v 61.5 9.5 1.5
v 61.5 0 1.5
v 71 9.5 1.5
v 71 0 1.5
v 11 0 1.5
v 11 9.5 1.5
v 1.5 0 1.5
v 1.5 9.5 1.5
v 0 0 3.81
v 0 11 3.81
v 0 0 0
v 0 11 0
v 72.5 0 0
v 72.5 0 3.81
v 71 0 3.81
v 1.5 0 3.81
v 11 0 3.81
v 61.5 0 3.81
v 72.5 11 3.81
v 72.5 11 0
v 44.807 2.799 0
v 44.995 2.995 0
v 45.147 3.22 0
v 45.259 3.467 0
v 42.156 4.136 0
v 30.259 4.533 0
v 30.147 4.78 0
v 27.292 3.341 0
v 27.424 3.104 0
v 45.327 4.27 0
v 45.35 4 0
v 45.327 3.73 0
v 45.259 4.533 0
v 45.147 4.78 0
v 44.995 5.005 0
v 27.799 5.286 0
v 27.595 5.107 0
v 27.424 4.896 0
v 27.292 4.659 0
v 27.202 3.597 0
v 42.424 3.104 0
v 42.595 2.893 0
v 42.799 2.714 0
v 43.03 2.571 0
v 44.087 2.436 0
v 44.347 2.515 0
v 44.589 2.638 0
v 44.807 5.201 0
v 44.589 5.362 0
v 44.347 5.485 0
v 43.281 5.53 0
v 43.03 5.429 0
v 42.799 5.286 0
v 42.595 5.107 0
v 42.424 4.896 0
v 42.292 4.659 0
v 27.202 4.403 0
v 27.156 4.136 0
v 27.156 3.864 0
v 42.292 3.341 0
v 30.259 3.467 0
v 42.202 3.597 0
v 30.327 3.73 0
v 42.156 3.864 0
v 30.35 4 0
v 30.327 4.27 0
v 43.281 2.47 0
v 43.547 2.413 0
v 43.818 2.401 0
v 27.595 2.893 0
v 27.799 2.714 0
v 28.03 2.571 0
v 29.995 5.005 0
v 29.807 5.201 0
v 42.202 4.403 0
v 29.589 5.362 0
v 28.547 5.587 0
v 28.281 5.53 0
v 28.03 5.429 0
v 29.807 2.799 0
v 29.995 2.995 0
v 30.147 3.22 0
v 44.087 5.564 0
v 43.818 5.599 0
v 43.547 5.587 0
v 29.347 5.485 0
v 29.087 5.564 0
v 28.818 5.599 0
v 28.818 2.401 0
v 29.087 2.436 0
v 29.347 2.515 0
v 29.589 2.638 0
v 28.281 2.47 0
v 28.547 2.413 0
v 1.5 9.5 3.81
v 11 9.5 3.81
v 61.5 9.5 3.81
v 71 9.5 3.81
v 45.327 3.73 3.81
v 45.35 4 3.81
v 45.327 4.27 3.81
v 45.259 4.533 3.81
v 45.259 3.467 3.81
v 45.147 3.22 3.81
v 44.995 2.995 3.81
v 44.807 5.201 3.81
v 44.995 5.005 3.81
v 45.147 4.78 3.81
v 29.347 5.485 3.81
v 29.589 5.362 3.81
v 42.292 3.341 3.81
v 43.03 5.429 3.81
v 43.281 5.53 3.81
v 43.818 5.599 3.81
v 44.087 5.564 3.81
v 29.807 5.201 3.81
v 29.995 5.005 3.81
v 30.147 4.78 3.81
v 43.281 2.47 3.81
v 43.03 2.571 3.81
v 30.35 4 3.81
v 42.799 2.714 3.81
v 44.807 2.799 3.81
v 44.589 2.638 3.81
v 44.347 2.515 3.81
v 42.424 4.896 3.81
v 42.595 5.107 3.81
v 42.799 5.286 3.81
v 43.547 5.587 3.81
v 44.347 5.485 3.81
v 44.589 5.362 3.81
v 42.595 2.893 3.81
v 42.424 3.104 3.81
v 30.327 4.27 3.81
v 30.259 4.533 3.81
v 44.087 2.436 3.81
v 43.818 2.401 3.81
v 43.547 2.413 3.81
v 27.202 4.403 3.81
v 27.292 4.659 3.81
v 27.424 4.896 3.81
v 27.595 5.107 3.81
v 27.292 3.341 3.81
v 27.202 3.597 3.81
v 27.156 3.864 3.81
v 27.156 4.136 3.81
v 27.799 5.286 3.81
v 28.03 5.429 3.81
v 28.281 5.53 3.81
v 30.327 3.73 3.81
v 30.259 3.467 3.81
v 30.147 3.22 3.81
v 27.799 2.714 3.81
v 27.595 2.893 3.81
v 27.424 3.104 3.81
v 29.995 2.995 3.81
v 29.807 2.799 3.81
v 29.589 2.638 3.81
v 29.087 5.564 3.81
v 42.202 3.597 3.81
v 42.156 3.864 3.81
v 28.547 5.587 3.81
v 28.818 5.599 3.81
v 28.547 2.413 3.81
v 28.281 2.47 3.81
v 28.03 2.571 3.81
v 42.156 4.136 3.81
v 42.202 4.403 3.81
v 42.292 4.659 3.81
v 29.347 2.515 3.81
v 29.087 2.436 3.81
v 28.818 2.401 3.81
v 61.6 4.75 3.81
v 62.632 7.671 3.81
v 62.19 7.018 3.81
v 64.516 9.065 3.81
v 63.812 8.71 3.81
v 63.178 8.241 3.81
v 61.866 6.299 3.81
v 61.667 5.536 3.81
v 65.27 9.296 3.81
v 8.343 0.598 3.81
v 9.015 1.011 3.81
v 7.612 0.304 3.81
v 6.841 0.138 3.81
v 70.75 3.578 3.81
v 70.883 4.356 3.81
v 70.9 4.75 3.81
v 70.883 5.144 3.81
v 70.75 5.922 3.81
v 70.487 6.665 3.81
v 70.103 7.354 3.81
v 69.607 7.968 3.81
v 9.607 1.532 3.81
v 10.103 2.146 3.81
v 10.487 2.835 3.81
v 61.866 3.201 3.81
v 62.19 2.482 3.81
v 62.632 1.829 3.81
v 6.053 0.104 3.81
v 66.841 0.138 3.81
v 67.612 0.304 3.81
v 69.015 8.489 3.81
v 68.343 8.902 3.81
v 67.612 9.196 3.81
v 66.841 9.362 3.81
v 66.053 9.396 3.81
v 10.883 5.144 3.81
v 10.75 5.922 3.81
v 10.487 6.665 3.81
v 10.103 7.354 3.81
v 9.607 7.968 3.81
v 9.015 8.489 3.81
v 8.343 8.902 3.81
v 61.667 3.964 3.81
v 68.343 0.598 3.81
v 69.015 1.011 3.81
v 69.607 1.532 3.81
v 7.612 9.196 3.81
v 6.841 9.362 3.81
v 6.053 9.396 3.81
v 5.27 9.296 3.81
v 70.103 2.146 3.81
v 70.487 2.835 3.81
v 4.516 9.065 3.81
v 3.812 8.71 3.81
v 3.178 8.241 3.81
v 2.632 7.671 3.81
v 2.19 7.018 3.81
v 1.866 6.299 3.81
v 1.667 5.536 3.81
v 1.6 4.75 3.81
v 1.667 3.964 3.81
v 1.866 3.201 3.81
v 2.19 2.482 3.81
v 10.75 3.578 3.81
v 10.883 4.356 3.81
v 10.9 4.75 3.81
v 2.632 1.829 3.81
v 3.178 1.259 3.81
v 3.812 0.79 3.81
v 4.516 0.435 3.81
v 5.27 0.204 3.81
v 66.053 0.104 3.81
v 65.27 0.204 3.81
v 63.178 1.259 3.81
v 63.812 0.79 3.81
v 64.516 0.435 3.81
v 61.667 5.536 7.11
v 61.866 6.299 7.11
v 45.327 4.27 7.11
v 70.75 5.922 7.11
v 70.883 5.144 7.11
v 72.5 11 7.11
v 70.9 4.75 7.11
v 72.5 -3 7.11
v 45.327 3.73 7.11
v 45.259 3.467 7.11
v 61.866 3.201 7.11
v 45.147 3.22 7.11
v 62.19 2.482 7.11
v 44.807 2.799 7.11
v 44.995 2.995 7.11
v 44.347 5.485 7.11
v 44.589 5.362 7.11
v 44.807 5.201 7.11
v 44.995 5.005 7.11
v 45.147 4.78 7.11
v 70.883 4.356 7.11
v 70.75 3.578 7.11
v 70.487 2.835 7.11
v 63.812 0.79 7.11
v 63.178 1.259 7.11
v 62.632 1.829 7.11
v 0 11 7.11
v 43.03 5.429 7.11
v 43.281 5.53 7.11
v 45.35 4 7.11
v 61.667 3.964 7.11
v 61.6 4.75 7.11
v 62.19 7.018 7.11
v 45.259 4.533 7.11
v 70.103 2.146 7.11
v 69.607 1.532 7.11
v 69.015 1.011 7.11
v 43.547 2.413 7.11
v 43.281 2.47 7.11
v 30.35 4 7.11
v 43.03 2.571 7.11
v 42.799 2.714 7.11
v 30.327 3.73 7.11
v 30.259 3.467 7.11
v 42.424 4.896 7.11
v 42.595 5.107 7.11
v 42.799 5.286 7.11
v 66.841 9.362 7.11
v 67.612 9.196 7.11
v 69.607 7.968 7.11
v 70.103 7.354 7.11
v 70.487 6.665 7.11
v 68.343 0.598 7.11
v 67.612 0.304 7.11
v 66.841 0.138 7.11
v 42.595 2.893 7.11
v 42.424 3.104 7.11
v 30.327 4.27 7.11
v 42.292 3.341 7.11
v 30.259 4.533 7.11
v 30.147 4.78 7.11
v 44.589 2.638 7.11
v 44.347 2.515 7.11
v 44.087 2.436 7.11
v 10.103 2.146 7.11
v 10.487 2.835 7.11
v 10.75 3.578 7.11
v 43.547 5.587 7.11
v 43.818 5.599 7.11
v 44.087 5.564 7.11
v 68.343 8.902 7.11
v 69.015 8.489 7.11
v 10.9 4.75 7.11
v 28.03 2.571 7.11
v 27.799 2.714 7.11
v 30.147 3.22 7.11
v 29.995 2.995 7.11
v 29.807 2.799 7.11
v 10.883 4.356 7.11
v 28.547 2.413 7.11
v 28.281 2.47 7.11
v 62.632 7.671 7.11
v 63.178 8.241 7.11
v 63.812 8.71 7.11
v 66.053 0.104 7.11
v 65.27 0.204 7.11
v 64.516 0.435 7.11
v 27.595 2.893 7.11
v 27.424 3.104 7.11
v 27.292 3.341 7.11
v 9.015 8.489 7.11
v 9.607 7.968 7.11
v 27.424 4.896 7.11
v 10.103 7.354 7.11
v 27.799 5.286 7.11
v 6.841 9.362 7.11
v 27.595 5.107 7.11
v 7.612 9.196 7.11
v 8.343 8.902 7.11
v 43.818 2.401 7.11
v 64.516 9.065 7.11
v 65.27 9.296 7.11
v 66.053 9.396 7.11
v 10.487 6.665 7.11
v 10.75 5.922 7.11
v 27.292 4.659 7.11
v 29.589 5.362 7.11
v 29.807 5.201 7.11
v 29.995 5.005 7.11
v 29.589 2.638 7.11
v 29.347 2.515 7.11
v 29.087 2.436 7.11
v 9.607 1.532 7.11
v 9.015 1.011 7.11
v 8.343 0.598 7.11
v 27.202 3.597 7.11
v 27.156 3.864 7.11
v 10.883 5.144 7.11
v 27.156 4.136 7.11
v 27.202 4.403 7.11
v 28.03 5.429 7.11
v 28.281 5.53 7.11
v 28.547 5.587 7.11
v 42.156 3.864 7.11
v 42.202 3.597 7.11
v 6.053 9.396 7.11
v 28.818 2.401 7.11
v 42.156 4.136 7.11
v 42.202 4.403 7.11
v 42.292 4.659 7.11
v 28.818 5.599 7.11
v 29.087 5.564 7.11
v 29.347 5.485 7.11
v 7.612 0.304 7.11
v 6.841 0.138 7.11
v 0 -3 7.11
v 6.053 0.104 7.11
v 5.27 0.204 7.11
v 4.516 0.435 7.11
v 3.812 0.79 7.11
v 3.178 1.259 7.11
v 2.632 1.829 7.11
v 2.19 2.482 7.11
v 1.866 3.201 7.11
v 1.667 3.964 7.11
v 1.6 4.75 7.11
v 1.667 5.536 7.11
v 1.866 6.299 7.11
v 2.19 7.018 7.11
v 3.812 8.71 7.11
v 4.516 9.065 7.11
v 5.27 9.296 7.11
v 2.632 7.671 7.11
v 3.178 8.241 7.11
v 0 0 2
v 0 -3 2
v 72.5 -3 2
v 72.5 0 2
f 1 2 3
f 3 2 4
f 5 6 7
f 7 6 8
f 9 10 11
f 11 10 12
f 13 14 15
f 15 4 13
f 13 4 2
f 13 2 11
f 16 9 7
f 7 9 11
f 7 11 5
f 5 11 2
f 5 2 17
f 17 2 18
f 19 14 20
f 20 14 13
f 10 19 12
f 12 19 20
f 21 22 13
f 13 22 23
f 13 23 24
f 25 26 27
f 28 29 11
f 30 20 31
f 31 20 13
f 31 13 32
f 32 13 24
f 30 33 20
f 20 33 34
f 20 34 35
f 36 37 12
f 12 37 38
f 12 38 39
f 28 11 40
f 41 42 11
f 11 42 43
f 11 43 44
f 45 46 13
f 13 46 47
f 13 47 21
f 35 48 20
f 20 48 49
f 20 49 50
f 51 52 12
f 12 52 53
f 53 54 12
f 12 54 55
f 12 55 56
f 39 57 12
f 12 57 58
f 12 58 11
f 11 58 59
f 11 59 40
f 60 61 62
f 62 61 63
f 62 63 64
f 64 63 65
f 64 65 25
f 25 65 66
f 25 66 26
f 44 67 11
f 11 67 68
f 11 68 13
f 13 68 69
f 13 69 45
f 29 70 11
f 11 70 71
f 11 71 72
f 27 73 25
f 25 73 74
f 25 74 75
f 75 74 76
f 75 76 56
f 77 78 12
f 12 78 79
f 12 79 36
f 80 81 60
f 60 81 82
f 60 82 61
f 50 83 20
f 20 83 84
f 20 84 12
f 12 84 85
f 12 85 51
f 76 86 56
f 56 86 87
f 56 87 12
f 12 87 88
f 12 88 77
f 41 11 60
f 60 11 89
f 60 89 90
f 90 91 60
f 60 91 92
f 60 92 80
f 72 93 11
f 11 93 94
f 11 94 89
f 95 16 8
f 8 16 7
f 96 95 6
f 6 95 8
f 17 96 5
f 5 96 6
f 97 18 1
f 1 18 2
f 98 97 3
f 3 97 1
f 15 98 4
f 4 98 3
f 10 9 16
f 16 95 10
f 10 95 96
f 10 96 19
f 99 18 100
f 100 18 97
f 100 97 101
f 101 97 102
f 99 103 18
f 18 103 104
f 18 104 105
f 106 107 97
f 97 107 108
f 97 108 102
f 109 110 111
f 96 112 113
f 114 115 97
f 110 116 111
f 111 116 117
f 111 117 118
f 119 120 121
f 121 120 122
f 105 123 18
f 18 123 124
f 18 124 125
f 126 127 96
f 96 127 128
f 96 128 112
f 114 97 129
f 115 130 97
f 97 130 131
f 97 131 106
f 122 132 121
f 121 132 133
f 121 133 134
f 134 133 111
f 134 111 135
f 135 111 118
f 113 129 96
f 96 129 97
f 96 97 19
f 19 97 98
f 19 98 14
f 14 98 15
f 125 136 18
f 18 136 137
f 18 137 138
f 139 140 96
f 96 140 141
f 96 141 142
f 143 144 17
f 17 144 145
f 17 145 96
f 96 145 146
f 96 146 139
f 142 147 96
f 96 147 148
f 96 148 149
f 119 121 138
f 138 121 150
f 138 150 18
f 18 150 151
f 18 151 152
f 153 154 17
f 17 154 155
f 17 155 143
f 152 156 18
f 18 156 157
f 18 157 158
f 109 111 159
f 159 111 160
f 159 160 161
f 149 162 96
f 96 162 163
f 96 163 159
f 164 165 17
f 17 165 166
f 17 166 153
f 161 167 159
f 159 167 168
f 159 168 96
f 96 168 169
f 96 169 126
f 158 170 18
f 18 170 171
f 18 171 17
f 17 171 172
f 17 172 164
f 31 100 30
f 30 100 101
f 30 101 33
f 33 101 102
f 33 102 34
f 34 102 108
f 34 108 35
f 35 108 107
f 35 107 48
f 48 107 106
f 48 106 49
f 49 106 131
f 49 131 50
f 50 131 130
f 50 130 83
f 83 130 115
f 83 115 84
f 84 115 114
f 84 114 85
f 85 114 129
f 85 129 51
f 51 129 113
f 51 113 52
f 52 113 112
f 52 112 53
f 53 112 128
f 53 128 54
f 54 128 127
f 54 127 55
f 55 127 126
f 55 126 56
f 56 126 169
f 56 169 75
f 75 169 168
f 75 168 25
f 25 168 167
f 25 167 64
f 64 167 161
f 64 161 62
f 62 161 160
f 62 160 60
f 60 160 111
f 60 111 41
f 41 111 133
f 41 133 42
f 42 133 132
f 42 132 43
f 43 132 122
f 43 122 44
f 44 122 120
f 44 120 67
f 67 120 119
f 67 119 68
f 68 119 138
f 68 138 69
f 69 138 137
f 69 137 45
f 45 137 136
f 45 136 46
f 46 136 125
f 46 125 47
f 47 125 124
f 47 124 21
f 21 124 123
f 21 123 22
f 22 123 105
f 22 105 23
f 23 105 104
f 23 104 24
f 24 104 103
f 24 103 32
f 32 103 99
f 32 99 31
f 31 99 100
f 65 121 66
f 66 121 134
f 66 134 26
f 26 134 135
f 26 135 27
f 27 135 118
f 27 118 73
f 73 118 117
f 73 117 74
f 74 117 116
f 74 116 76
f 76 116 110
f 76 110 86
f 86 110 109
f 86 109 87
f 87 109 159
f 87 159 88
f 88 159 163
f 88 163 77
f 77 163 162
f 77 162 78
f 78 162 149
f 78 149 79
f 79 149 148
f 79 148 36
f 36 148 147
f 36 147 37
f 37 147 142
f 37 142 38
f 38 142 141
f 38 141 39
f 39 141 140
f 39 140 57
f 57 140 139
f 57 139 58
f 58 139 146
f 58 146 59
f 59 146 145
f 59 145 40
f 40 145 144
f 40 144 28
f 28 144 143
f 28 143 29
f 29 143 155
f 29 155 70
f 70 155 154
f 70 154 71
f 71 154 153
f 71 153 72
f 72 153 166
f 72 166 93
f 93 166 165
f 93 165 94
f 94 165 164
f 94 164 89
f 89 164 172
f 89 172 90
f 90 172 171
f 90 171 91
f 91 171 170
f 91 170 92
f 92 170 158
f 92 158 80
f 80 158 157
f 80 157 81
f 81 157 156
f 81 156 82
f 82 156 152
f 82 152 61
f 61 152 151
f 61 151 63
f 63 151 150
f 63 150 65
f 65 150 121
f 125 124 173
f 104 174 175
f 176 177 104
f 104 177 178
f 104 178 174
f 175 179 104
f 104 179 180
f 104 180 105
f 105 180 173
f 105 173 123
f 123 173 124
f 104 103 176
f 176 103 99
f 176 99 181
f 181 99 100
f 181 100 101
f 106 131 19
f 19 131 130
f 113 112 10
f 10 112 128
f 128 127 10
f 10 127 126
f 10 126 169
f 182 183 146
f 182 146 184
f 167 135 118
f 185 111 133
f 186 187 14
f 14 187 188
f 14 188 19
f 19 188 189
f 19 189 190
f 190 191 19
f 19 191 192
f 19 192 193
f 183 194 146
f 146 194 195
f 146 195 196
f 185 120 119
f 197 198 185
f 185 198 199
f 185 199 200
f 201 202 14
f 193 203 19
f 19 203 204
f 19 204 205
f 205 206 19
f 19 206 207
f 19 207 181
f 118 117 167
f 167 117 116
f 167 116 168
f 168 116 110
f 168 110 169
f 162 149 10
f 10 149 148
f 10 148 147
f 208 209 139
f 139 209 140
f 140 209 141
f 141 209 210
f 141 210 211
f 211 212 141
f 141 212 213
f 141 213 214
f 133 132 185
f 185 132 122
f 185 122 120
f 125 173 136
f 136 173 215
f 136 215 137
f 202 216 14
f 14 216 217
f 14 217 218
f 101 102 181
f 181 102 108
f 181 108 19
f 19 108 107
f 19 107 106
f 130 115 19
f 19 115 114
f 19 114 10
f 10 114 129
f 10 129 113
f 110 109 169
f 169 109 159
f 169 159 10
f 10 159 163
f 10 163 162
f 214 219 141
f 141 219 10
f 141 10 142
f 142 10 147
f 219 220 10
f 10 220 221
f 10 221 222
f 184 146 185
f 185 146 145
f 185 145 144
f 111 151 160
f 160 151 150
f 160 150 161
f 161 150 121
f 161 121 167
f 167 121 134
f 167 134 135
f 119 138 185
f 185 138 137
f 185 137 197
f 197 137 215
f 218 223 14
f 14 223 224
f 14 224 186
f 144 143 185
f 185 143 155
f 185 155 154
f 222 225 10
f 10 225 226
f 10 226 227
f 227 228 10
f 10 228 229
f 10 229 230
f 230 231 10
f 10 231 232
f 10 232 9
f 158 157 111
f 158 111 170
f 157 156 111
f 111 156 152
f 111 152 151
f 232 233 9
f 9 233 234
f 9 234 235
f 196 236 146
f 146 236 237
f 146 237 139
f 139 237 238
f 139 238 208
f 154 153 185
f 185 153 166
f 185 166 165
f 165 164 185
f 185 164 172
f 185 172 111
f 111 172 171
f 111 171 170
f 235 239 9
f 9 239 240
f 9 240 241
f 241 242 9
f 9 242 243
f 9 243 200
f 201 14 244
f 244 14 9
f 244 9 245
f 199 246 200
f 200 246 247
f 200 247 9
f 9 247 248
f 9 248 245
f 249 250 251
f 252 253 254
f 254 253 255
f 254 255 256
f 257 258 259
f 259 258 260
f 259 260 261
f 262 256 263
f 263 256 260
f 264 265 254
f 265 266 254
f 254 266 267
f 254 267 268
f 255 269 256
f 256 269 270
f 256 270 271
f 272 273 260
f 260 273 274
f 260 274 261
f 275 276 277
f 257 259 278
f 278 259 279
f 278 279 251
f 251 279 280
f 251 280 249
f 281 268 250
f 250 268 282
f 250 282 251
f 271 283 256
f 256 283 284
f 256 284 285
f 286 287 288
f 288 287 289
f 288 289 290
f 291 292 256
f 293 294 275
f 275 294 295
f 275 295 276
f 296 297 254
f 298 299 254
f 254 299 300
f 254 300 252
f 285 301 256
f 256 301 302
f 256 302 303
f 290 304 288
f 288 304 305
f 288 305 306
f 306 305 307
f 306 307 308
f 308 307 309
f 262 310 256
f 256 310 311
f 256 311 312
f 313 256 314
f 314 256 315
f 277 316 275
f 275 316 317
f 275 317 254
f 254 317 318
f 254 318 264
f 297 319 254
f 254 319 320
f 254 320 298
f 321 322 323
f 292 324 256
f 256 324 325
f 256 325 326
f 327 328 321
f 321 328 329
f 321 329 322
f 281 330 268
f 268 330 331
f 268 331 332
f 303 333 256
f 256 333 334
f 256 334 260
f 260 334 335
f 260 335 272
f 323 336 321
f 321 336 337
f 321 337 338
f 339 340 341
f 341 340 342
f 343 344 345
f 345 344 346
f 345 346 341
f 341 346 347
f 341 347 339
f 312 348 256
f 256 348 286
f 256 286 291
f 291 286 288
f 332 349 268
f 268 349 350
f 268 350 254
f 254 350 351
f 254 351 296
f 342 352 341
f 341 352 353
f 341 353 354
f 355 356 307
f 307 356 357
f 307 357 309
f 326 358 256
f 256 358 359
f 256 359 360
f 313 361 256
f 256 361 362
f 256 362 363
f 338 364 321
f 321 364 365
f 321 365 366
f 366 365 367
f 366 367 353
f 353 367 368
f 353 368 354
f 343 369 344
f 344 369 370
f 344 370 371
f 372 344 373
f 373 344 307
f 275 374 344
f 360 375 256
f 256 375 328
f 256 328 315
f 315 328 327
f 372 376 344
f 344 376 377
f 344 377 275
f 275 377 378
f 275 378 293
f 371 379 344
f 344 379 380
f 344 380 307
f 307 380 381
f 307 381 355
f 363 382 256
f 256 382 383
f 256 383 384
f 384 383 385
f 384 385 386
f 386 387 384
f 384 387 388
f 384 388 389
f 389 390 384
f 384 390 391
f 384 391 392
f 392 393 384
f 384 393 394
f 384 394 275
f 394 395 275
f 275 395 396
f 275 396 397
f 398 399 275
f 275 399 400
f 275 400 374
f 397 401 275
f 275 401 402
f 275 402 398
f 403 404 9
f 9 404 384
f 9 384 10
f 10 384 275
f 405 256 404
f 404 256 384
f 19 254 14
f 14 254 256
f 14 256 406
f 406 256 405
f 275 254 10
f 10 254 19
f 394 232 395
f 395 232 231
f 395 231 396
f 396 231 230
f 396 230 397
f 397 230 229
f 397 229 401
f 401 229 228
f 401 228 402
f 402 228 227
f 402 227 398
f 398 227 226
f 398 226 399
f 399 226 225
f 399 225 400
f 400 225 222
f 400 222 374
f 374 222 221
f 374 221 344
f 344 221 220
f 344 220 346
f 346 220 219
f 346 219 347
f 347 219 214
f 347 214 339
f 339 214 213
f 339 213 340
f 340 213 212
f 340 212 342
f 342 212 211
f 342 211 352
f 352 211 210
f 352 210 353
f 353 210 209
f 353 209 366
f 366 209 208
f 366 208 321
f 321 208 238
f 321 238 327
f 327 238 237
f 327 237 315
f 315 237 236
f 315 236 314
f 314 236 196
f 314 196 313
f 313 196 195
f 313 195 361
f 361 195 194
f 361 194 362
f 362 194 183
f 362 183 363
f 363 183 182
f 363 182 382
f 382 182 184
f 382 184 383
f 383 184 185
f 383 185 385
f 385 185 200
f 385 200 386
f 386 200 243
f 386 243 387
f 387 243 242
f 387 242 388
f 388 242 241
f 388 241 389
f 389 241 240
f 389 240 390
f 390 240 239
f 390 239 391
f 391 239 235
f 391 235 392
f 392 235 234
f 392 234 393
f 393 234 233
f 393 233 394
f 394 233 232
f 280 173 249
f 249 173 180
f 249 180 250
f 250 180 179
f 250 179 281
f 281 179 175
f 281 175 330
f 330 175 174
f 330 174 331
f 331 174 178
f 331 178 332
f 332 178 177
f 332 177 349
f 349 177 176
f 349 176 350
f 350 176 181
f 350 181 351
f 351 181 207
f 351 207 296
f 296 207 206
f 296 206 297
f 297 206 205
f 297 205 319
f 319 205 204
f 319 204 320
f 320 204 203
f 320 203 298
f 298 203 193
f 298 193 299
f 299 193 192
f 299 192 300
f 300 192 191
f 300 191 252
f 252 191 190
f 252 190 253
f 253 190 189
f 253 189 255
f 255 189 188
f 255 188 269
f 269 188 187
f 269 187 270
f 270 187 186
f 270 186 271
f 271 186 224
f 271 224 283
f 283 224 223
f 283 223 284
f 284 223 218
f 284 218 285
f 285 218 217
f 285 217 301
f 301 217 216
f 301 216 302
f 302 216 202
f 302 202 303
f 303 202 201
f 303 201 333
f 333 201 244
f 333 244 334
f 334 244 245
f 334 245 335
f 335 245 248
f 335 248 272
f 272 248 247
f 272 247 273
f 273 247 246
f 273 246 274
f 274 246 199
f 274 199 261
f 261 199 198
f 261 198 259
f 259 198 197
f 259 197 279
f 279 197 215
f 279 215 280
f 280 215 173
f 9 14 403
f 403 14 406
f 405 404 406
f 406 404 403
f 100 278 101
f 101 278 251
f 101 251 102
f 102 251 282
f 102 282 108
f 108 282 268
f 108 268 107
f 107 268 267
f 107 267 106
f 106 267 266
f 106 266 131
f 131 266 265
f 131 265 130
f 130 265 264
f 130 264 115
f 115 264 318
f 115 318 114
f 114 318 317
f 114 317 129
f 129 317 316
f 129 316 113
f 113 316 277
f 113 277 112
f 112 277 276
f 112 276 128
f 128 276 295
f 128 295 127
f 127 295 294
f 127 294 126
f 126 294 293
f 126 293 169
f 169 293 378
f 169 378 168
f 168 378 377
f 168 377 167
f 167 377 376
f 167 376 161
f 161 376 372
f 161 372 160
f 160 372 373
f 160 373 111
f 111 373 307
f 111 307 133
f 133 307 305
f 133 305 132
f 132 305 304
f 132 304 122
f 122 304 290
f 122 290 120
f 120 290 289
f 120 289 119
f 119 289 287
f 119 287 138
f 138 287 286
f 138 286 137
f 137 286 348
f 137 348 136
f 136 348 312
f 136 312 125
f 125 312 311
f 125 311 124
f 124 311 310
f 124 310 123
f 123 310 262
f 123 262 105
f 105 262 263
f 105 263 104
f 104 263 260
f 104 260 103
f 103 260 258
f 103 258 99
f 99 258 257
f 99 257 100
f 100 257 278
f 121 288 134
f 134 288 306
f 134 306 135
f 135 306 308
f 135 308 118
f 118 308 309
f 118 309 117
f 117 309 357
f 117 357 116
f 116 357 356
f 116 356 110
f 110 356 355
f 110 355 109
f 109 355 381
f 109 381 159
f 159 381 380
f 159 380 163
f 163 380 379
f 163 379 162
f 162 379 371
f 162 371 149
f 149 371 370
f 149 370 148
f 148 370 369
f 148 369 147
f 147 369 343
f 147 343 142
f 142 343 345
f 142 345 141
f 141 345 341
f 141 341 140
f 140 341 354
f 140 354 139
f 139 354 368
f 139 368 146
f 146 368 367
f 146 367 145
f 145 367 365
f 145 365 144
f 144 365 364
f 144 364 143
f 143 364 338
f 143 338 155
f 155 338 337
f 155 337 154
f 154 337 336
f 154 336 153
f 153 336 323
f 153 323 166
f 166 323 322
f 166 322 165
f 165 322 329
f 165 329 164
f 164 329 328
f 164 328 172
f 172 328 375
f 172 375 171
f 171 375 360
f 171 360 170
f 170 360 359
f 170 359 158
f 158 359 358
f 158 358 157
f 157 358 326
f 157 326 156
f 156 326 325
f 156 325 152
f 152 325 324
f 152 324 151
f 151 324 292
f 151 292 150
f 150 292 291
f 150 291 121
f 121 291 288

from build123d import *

# Parameters (mm, degrees)
SKETCH1_W           = 72.5
SKETCH1_H           = 11
BOSS_EXTRUDE1_DEPTH = 1.5
BOSS_EXTRUDE2_DEPTH = 2.31
SKETCH3_W           = 72.5
SKETCH3_H           = 14
SKETCH3_R           = 4.65
BOSS_EXTRUDE3_DEPTH = 3.3
SKETCH4_W           = 72.5
SKETCH4_H           = 3
BOSS_EXTRUDE4_DEPTH = 1.81
SKETCH5_R           = 1.6
CUT_EXTRUDE1_DEPTH  = 74.673618752


with BuildPart() as part:
    # Sketch1 → Boss-Extrude1 (new body)
    with BuildSketch(Plane.XY):
        with Locations((36.25, 5.5)):
            Rectangle(SKETCH1_W, SKETCH1_H)
    extrude(amount=BOSS_EXTRUDE1_DEPTH)

    # Sketch2 → Boss-Extrude2 (add)
    with BuildSketch(Plane.XY.offset(1.5)):
        Polygon((1.5, 9.5), (11, 9.5), (11, 0), (61.5, 0), (61.5, 9.5), (71, 9.5), (71, 0), (72.5, 0), (72.5, 11), (0, 11), (0, 0), (1.5, 0), align=None)
    extrude(amount=BOSS_EXTRUDE2_DEPTH)


with BuildPart() as body_2:
    # Sketch3 → Boss-Extrude3 (new body)
    with BuildSketch(Plane.XY.offset(3.81)):
        with Locations((36.25, 4)):
            Rectangle(SKETCH3_W, SKETCH3_H)
        with Locations((6.25, 4.75)):
            Circle(SKETCH3_R, mode=Mode.SUBTRACT)
        with Locations((66.25, 4.75)):
            Circle(SKETCH3_R, mode=Mode.SUBTRACT)
    extrude(amount=BOSS_EXTRUDE3_DEPTH)

    # Sketch4 → Boss-Extrude4 (add)
    with BuildSketch(Plane(origin=(0, 0, 3.81), x_dir=(-1, 0, 0), z_dir=(0, 0, -1))):
        with Locations((-36.25, -1.5)):
            Rectangle(SKETCH4_W, SKETCH4_H)
    extrude(amount=BOSS_EXTRUDE4_DEPTH)


with BuildPart() as cut_extrude1_tool:
    # Sketch5 → Cut-Extrude1 (new, through all)
    with BuildSketch(Plane.XY.offset(7.11)):
        with Locations((28.75, 4)):
            Circle(SKETCH5_R)
        with Locations((43.75, 4)):
            Circle(SKETCH5_R)
    extrude(amount=-CUT_EXTRUDE1_DEPTH)


with BuildPart() as part_1:
    add(part.part)

    # Cut-Extrude1: cut by cut_extrude1_tool
    add(cut_extrude1_tool.part, mode=Mode.SUBTRACT)


with BuildPart() as body_2_1:
    add(body_2.part)

    # Cut-Extrude1: cut by cut_extrude1_tool
    add(cut_extrude1_tool.part, mode=Mode.SUBTRACT)


solid = Compound([part_1.part, body_2_1.part])
